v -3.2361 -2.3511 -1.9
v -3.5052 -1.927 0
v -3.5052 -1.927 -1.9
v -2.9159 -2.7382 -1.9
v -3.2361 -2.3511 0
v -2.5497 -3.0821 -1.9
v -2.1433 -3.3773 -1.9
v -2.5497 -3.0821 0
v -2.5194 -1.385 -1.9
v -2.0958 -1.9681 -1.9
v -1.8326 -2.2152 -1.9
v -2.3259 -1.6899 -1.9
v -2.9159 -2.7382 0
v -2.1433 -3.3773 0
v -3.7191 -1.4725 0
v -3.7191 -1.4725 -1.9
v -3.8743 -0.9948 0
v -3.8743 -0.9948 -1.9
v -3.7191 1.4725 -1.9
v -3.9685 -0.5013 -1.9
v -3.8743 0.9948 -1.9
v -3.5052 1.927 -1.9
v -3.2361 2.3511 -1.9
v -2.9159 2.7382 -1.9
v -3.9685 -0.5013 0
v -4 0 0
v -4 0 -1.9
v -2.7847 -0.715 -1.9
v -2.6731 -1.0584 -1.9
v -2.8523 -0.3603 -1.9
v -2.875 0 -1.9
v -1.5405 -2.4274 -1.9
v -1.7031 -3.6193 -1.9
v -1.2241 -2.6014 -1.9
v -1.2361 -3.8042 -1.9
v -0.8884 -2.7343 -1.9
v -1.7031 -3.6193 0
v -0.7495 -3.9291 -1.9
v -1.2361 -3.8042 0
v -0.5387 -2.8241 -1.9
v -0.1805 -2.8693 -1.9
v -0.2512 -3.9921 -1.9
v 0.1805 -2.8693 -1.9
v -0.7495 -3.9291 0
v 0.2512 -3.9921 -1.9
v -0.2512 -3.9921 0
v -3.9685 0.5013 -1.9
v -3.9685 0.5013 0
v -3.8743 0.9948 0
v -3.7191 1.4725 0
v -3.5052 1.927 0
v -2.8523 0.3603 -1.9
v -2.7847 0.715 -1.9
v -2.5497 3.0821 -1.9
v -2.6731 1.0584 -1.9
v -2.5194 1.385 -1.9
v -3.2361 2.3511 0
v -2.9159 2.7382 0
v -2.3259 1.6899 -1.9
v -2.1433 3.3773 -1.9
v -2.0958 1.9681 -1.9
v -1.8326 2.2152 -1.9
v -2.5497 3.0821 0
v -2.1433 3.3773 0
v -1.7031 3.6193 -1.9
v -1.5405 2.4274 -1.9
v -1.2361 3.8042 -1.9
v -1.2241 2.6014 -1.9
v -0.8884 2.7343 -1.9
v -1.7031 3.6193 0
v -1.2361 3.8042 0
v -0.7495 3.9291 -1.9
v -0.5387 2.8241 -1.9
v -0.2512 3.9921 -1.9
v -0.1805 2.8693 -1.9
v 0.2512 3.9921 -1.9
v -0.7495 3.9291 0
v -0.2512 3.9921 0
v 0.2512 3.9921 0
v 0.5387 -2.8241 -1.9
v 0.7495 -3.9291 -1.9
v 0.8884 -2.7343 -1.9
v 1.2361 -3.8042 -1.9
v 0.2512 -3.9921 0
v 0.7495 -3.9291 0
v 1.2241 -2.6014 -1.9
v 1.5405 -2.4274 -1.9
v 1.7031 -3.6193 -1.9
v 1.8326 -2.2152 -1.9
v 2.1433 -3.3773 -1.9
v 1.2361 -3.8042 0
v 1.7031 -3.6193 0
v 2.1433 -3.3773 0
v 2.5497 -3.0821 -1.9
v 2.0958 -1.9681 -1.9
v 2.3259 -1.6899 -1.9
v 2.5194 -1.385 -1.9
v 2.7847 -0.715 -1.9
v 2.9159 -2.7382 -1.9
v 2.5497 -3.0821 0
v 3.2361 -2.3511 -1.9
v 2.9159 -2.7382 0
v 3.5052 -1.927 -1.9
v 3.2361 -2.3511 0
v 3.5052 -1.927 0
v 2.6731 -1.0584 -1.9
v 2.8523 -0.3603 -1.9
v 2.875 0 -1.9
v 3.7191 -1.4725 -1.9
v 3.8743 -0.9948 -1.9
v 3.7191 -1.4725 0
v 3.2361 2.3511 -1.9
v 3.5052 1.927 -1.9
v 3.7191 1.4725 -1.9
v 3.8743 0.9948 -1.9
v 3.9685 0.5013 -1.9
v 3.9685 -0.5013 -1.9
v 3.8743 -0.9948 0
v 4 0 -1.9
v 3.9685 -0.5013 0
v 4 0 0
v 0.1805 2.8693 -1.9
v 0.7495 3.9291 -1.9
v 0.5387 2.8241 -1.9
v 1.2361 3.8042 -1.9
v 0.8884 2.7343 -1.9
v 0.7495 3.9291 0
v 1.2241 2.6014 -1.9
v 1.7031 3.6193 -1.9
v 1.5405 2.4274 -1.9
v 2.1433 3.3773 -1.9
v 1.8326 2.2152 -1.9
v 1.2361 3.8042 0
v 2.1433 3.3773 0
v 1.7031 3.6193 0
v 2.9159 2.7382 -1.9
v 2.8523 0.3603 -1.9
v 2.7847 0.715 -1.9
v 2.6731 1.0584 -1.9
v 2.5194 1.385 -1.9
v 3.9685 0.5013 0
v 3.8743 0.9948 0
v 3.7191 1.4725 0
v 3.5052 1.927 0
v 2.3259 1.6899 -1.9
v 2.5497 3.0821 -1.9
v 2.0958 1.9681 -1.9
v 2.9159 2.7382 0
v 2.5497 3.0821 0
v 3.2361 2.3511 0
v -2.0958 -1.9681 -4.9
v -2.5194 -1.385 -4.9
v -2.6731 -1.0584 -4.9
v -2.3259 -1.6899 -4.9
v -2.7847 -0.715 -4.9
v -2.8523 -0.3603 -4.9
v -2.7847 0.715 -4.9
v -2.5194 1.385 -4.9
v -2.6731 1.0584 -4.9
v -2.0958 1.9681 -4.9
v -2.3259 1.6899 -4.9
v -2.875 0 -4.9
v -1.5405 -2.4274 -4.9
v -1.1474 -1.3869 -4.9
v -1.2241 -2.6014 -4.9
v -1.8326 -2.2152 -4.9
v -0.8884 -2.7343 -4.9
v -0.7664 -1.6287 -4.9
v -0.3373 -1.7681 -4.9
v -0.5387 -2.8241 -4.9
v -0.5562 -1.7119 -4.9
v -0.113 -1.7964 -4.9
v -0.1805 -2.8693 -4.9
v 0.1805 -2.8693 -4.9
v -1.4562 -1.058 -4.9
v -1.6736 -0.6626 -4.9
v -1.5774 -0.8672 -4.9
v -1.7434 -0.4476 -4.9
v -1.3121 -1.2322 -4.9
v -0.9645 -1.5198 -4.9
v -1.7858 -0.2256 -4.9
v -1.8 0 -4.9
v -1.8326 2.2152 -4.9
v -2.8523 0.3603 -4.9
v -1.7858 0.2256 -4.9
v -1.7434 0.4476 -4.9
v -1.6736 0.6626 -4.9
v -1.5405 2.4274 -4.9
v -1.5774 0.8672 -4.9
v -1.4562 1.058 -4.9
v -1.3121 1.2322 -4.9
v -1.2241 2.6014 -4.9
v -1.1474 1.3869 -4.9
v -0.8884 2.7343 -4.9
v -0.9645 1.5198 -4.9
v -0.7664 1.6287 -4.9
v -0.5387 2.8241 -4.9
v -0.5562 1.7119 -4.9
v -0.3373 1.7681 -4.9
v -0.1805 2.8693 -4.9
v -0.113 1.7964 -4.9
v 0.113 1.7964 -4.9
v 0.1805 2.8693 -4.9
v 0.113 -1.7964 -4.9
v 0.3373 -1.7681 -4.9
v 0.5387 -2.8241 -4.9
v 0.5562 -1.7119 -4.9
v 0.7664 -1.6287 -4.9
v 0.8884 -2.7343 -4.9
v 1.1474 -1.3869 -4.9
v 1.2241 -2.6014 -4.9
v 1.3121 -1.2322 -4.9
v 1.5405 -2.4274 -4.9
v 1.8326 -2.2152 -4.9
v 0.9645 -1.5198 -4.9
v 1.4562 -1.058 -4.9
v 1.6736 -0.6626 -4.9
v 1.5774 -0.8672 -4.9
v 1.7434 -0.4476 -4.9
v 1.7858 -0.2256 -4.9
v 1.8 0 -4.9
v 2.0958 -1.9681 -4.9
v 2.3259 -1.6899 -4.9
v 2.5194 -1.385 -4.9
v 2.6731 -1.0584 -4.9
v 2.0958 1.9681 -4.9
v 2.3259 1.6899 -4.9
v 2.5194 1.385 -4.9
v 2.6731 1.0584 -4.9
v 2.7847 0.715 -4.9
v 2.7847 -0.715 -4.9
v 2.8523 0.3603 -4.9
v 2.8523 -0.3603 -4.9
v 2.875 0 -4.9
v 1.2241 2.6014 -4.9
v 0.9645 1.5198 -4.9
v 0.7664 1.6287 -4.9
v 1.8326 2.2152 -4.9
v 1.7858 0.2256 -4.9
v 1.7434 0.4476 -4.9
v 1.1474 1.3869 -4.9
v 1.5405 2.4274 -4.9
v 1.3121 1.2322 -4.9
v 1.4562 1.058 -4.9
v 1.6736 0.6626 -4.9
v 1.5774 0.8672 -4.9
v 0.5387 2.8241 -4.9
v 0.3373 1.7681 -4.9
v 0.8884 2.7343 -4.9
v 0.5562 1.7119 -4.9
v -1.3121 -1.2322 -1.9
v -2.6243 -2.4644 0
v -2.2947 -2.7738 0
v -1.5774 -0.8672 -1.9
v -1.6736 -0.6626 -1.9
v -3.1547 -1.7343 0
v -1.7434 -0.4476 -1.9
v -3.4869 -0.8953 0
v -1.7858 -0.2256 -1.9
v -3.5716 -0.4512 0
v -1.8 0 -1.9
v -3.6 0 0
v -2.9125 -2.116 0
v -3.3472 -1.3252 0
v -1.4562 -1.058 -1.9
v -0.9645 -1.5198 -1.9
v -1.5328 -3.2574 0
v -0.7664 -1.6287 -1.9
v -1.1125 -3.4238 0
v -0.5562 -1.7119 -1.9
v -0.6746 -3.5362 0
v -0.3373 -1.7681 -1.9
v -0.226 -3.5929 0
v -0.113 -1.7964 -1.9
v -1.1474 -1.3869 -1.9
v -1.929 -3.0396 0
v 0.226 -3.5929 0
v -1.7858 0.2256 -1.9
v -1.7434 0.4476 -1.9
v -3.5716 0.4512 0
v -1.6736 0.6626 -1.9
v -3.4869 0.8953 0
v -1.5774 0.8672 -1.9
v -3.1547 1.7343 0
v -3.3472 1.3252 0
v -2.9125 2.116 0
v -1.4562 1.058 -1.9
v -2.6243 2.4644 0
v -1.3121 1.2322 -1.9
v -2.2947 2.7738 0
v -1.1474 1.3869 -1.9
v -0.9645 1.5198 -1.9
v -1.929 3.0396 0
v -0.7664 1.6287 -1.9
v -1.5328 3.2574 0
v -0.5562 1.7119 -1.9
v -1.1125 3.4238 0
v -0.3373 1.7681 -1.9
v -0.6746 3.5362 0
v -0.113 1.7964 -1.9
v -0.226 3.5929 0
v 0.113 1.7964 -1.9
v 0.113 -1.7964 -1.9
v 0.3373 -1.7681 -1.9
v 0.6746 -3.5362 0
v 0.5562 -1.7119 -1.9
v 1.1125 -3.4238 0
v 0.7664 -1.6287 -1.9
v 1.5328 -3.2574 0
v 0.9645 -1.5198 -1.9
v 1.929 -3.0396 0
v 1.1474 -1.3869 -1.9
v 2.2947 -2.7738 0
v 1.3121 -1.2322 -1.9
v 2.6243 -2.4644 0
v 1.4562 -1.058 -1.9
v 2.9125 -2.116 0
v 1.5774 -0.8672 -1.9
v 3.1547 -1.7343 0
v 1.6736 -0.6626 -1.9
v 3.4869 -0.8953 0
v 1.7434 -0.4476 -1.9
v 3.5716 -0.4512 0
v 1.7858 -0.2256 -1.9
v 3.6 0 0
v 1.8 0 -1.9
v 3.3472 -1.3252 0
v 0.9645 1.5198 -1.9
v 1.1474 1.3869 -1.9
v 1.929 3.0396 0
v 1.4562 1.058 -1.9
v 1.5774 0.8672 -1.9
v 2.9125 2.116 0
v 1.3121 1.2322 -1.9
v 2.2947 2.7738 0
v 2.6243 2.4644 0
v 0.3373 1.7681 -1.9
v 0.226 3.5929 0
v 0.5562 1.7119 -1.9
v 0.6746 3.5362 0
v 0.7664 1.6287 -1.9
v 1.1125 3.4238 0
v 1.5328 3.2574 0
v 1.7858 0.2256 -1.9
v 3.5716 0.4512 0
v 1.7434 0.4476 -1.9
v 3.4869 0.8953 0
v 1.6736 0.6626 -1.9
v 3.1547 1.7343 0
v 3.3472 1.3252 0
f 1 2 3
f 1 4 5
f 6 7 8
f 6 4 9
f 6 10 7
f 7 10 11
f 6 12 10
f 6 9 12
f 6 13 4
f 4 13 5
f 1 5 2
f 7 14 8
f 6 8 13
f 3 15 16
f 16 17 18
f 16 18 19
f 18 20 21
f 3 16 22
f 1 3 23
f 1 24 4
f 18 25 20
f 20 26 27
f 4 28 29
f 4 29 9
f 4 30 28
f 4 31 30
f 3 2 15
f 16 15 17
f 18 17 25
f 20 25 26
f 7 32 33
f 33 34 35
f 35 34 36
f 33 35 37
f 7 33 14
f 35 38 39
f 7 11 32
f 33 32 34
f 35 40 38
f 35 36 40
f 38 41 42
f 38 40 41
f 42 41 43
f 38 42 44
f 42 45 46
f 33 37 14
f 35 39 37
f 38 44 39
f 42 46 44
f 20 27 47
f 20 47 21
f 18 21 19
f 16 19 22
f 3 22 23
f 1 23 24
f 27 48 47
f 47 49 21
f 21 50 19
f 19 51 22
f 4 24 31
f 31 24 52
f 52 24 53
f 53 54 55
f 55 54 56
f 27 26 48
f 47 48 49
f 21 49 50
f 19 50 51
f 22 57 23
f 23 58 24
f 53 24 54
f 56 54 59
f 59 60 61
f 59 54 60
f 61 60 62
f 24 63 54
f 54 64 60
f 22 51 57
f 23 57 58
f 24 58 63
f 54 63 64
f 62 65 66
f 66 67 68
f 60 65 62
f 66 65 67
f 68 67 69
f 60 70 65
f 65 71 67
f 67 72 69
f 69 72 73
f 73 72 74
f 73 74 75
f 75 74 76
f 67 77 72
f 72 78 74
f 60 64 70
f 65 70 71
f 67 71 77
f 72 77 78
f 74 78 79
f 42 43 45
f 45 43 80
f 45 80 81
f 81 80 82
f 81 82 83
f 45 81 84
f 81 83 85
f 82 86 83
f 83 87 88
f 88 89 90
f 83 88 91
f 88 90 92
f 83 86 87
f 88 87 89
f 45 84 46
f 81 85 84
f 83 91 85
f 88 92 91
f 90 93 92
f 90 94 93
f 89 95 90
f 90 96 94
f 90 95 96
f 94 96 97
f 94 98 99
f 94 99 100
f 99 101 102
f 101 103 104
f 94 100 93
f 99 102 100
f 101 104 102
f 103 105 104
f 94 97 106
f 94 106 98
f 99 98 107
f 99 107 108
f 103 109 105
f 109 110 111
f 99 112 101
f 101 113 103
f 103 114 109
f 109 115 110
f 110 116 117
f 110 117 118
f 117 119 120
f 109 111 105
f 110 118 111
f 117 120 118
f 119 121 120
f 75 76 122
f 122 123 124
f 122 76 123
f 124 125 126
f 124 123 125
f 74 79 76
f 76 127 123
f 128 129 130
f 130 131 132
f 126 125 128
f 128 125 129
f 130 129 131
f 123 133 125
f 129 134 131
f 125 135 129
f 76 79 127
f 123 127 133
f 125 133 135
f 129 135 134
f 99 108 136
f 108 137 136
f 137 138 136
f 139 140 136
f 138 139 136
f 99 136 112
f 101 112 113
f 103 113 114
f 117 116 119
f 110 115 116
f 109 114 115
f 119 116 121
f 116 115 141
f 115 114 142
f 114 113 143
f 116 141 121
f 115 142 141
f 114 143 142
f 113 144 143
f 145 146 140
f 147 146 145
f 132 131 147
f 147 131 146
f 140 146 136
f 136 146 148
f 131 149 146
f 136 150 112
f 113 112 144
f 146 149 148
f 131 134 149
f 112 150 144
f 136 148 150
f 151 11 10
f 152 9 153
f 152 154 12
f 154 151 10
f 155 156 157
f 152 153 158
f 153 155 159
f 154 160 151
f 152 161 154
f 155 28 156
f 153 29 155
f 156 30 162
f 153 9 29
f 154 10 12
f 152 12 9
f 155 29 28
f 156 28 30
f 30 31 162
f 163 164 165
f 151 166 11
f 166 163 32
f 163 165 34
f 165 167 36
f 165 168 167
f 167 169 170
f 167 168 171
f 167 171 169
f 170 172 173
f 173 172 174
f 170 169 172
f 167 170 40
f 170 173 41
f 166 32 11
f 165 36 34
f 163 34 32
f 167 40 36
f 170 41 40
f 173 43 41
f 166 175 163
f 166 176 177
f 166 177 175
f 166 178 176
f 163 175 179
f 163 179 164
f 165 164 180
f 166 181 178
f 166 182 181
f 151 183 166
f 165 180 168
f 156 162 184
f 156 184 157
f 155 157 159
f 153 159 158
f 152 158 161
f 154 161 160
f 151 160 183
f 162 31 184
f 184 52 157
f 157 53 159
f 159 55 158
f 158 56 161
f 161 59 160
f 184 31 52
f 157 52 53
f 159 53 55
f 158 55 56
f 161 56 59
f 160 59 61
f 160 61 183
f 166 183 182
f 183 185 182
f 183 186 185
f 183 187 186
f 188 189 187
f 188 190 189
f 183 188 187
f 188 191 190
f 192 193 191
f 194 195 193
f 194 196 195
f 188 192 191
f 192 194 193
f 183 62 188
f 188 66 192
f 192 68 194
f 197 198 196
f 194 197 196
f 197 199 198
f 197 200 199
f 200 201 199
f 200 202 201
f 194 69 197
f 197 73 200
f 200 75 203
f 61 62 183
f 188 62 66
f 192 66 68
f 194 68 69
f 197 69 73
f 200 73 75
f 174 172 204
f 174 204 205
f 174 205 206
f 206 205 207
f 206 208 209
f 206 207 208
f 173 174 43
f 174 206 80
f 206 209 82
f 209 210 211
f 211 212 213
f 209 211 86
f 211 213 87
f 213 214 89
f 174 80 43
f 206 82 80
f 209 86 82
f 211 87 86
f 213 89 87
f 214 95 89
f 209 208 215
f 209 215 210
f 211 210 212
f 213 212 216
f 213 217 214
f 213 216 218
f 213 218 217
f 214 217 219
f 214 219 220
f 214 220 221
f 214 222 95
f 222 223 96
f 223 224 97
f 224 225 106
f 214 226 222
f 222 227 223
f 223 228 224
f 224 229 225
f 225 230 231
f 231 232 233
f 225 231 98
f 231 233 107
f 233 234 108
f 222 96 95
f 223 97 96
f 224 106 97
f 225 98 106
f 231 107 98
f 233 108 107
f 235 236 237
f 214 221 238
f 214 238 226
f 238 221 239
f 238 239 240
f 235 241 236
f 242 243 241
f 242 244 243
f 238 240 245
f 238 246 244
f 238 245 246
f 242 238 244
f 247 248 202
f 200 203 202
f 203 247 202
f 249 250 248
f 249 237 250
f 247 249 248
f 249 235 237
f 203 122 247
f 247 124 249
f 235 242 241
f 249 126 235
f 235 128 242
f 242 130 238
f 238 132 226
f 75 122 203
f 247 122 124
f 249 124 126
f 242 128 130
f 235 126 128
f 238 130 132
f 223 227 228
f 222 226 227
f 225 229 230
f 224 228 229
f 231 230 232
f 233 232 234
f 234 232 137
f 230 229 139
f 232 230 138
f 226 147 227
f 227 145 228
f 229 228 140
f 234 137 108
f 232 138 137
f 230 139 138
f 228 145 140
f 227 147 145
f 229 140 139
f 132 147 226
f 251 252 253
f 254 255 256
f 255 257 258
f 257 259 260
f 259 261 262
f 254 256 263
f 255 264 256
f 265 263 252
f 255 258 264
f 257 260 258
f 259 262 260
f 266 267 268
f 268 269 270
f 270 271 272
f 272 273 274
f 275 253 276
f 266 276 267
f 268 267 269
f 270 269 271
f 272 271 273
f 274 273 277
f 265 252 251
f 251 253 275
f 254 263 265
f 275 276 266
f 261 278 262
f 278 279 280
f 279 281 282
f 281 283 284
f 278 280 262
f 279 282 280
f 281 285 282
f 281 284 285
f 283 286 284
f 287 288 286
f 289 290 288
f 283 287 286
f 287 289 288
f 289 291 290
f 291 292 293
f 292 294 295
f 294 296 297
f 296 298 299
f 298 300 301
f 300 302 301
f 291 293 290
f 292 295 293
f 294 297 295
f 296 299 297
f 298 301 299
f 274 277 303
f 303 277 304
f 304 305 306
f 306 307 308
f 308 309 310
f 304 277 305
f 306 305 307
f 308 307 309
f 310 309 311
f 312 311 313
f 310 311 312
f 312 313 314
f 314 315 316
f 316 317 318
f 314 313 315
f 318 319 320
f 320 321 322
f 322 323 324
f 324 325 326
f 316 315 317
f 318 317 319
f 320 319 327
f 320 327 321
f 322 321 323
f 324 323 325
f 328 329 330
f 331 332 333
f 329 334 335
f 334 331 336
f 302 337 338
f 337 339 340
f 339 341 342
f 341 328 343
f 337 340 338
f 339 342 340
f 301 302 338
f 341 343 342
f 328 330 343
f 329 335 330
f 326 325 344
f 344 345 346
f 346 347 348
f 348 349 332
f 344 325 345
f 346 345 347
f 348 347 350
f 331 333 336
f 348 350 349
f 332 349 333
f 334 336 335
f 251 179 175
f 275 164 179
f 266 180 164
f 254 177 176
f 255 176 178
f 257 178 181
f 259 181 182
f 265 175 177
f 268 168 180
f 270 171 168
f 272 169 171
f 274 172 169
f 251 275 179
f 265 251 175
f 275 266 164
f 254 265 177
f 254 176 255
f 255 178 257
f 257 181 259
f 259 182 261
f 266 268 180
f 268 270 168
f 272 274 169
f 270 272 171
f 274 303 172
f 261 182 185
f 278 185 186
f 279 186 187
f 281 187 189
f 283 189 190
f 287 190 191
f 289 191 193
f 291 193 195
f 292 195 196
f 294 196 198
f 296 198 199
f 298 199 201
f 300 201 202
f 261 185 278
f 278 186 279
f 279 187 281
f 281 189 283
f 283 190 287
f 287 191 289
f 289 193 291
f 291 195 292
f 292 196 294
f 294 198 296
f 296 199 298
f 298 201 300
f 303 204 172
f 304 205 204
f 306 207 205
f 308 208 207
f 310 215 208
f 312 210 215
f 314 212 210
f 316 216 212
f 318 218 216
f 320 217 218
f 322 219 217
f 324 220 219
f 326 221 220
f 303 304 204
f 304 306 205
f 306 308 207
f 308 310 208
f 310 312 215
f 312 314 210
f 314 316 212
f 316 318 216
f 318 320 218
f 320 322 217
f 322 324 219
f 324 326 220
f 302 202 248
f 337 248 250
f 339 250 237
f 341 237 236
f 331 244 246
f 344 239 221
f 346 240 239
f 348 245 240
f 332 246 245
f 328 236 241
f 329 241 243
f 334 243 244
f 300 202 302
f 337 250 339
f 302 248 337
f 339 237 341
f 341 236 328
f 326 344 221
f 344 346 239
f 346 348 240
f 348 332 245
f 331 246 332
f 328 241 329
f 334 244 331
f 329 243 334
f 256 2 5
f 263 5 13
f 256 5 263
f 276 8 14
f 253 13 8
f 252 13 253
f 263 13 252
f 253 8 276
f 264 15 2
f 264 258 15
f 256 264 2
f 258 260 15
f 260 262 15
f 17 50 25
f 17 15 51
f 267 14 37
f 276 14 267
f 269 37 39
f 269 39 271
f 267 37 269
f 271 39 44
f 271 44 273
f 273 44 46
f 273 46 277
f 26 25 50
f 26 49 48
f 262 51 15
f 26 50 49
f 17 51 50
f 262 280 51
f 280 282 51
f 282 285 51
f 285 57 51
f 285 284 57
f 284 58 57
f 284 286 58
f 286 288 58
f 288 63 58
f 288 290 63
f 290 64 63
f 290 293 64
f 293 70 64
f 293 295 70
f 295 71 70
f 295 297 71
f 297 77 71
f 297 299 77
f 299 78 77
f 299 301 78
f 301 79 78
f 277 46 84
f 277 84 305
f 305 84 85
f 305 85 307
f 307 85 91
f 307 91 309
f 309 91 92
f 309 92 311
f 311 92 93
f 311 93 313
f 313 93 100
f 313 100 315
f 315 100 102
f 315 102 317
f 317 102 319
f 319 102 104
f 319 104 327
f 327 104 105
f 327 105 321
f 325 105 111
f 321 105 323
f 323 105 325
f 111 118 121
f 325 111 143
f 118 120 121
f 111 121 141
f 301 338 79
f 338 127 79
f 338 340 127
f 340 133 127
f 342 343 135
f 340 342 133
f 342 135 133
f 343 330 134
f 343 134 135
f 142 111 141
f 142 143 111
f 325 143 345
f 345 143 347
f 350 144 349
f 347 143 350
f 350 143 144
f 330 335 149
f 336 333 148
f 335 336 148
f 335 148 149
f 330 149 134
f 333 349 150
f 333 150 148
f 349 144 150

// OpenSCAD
$fn = 50;

difference() {
	union() {
		translate(v = [0, 0, -1.9]) {
			cylinder(h = 1.9, r = 4.0);
		}
		#translate(v = [0, 0, -4.9]) {
			cylinder(h = 4.9, r = 2.875);
		}
	}
	union() {
		translate(v = [0, 0, 0]) {
			rotate(a = [0, 0, 0]) {
				difference() {
					union() {
						translate(v = [0, 0, -4.9]) {
							cylinder(h = 4.9, r = 1.5);
						}
						translate(v = [0, 0, -1.9]) {
							cylinder(h = 1.9, r1 = 1.8, r2 = 3.6);
						}
						translate(v = [0, 0, -4.9]) {
							cylinder(h = 4.9, r = 1.8);
						}
						translate(v = [0, 0, -4.9]) {
							cylinder(h = 4.9, r = 1.5);
						}
					}
					union();
				}
			}
		}
	}
}
